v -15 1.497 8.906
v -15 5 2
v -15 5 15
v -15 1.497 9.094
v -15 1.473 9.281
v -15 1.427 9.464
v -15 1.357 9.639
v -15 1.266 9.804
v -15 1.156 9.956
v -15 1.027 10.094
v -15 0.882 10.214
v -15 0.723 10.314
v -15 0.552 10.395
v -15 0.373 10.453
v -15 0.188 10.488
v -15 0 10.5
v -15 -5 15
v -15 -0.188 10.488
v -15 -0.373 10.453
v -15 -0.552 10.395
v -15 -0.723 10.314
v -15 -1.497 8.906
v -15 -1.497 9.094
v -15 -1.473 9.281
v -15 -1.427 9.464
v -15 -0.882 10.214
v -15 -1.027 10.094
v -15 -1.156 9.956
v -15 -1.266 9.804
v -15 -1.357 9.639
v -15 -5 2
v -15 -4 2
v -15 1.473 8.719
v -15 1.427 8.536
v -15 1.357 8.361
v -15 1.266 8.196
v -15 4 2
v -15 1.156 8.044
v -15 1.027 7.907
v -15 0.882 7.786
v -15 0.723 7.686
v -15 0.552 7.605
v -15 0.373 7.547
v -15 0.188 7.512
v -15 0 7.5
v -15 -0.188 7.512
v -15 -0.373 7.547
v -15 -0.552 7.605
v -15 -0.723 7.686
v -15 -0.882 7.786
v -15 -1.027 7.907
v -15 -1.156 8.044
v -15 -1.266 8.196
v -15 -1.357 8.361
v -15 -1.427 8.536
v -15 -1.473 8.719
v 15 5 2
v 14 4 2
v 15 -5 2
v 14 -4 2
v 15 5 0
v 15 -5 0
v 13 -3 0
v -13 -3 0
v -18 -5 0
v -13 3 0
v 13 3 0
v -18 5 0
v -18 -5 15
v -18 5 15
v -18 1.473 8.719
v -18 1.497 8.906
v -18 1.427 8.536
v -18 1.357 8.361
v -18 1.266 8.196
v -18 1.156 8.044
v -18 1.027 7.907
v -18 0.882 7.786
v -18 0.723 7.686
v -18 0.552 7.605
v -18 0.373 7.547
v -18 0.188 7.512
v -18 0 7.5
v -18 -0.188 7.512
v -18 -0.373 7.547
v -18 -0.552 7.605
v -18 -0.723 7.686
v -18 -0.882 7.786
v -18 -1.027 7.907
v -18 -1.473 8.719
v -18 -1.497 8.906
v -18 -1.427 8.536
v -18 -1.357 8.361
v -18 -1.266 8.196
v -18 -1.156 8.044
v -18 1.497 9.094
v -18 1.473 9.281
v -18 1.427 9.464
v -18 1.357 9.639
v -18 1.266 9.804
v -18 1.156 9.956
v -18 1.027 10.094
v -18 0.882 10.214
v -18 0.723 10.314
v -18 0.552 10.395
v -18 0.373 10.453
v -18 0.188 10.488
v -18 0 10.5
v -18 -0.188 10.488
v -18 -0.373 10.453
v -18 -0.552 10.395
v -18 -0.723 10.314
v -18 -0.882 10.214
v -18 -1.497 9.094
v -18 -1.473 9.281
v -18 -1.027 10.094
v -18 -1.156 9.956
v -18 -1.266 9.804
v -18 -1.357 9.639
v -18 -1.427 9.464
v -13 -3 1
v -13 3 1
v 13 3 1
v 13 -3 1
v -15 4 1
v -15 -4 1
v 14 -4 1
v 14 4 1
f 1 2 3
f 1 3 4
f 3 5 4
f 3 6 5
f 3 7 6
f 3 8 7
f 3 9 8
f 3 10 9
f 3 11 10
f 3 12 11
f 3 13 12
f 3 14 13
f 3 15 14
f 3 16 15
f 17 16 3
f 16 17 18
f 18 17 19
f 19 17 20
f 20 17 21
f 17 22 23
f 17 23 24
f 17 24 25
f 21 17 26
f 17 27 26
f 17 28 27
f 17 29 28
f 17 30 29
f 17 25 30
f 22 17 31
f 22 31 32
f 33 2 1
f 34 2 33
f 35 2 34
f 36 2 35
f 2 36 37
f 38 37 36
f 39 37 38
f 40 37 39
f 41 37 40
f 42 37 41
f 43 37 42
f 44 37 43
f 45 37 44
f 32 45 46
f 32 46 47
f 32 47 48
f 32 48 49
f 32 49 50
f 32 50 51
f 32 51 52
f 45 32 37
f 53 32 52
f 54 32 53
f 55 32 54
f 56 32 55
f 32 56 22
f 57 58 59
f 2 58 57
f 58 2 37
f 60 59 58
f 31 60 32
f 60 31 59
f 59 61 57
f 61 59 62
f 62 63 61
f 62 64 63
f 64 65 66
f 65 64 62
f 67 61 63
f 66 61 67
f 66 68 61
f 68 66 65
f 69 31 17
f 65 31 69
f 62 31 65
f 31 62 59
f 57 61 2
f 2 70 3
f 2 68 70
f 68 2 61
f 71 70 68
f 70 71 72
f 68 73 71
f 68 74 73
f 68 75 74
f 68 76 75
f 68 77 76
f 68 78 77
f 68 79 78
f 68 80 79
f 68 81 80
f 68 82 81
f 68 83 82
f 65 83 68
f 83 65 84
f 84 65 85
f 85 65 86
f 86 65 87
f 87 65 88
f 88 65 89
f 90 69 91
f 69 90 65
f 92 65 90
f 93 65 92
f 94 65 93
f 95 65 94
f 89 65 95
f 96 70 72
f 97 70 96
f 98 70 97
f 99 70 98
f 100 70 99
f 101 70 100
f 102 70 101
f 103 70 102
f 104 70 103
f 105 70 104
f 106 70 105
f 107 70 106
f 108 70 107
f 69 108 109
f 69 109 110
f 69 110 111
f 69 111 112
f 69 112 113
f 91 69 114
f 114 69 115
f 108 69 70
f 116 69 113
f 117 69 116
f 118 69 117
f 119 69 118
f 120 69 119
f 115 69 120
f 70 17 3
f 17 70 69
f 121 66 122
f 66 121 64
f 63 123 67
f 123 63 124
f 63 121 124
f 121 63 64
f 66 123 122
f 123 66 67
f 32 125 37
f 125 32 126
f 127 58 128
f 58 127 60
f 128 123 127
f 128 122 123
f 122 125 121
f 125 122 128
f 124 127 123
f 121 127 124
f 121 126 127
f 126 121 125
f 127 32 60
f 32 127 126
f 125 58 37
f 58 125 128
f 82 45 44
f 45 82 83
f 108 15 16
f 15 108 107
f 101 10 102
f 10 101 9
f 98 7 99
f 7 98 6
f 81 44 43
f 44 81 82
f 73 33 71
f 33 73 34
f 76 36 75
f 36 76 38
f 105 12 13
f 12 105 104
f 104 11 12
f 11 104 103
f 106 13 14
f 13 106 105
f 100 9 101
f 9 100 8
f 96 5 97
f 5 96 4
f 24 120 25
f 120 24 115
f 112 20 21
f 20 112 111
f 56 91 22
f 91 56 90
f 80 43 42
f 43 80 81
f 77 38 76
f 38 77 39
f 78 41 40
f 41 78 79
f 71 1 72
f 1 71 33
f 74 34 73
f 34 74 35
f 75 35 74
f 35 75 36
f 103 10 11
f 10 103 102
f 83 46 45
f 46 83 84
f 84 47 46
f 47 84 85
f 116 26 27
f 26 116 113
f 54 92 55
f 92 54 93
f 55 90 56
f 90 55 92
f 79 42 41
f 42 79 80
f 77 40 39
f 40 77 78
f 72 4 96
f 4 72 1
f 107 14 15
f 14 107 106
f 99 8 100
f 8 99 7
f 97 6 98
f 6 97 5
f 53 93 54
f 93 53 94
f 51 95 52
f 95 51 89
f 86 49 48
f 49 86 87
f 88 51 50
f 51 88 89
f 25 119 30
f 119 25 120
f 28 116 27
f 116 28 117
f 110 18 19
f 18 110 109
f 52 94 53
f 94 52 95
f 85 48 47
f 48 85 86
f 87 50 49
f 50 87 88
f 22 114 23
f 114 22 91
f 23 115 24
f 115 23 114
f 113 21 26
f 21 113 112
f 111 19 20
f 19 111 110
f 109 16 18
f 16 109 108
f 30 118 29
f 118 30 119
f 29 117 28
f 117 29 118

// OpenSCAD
$fn = 50;


difference() {
	union() {
		translate(v = [-15.0000000000, -5.0000000000, 0]) {
			cube(size = [30, 10, 2]);
		}
		translate(v = [-18.0000000000, -5.0000000000, 0]) {
			cube(size = [3, 10, 15]);
		}
	}
	union() {
		translate(v = [-13.0000000000, -3.0000000000, 0]) {
			cube(size = [26, 6, 2]);
		}
		translate(v = [-15.0000000000, -4.0000000000, 1]) {
			cube(size = [29, 8, 1]);
		}
		#translate(v = [-25.0000000000, 0, 9]) {
			rotate(a = [0, 90, 0]) {
				cylinder(h = 20, r = 1.5000000000);
			}
		}
	}
}
